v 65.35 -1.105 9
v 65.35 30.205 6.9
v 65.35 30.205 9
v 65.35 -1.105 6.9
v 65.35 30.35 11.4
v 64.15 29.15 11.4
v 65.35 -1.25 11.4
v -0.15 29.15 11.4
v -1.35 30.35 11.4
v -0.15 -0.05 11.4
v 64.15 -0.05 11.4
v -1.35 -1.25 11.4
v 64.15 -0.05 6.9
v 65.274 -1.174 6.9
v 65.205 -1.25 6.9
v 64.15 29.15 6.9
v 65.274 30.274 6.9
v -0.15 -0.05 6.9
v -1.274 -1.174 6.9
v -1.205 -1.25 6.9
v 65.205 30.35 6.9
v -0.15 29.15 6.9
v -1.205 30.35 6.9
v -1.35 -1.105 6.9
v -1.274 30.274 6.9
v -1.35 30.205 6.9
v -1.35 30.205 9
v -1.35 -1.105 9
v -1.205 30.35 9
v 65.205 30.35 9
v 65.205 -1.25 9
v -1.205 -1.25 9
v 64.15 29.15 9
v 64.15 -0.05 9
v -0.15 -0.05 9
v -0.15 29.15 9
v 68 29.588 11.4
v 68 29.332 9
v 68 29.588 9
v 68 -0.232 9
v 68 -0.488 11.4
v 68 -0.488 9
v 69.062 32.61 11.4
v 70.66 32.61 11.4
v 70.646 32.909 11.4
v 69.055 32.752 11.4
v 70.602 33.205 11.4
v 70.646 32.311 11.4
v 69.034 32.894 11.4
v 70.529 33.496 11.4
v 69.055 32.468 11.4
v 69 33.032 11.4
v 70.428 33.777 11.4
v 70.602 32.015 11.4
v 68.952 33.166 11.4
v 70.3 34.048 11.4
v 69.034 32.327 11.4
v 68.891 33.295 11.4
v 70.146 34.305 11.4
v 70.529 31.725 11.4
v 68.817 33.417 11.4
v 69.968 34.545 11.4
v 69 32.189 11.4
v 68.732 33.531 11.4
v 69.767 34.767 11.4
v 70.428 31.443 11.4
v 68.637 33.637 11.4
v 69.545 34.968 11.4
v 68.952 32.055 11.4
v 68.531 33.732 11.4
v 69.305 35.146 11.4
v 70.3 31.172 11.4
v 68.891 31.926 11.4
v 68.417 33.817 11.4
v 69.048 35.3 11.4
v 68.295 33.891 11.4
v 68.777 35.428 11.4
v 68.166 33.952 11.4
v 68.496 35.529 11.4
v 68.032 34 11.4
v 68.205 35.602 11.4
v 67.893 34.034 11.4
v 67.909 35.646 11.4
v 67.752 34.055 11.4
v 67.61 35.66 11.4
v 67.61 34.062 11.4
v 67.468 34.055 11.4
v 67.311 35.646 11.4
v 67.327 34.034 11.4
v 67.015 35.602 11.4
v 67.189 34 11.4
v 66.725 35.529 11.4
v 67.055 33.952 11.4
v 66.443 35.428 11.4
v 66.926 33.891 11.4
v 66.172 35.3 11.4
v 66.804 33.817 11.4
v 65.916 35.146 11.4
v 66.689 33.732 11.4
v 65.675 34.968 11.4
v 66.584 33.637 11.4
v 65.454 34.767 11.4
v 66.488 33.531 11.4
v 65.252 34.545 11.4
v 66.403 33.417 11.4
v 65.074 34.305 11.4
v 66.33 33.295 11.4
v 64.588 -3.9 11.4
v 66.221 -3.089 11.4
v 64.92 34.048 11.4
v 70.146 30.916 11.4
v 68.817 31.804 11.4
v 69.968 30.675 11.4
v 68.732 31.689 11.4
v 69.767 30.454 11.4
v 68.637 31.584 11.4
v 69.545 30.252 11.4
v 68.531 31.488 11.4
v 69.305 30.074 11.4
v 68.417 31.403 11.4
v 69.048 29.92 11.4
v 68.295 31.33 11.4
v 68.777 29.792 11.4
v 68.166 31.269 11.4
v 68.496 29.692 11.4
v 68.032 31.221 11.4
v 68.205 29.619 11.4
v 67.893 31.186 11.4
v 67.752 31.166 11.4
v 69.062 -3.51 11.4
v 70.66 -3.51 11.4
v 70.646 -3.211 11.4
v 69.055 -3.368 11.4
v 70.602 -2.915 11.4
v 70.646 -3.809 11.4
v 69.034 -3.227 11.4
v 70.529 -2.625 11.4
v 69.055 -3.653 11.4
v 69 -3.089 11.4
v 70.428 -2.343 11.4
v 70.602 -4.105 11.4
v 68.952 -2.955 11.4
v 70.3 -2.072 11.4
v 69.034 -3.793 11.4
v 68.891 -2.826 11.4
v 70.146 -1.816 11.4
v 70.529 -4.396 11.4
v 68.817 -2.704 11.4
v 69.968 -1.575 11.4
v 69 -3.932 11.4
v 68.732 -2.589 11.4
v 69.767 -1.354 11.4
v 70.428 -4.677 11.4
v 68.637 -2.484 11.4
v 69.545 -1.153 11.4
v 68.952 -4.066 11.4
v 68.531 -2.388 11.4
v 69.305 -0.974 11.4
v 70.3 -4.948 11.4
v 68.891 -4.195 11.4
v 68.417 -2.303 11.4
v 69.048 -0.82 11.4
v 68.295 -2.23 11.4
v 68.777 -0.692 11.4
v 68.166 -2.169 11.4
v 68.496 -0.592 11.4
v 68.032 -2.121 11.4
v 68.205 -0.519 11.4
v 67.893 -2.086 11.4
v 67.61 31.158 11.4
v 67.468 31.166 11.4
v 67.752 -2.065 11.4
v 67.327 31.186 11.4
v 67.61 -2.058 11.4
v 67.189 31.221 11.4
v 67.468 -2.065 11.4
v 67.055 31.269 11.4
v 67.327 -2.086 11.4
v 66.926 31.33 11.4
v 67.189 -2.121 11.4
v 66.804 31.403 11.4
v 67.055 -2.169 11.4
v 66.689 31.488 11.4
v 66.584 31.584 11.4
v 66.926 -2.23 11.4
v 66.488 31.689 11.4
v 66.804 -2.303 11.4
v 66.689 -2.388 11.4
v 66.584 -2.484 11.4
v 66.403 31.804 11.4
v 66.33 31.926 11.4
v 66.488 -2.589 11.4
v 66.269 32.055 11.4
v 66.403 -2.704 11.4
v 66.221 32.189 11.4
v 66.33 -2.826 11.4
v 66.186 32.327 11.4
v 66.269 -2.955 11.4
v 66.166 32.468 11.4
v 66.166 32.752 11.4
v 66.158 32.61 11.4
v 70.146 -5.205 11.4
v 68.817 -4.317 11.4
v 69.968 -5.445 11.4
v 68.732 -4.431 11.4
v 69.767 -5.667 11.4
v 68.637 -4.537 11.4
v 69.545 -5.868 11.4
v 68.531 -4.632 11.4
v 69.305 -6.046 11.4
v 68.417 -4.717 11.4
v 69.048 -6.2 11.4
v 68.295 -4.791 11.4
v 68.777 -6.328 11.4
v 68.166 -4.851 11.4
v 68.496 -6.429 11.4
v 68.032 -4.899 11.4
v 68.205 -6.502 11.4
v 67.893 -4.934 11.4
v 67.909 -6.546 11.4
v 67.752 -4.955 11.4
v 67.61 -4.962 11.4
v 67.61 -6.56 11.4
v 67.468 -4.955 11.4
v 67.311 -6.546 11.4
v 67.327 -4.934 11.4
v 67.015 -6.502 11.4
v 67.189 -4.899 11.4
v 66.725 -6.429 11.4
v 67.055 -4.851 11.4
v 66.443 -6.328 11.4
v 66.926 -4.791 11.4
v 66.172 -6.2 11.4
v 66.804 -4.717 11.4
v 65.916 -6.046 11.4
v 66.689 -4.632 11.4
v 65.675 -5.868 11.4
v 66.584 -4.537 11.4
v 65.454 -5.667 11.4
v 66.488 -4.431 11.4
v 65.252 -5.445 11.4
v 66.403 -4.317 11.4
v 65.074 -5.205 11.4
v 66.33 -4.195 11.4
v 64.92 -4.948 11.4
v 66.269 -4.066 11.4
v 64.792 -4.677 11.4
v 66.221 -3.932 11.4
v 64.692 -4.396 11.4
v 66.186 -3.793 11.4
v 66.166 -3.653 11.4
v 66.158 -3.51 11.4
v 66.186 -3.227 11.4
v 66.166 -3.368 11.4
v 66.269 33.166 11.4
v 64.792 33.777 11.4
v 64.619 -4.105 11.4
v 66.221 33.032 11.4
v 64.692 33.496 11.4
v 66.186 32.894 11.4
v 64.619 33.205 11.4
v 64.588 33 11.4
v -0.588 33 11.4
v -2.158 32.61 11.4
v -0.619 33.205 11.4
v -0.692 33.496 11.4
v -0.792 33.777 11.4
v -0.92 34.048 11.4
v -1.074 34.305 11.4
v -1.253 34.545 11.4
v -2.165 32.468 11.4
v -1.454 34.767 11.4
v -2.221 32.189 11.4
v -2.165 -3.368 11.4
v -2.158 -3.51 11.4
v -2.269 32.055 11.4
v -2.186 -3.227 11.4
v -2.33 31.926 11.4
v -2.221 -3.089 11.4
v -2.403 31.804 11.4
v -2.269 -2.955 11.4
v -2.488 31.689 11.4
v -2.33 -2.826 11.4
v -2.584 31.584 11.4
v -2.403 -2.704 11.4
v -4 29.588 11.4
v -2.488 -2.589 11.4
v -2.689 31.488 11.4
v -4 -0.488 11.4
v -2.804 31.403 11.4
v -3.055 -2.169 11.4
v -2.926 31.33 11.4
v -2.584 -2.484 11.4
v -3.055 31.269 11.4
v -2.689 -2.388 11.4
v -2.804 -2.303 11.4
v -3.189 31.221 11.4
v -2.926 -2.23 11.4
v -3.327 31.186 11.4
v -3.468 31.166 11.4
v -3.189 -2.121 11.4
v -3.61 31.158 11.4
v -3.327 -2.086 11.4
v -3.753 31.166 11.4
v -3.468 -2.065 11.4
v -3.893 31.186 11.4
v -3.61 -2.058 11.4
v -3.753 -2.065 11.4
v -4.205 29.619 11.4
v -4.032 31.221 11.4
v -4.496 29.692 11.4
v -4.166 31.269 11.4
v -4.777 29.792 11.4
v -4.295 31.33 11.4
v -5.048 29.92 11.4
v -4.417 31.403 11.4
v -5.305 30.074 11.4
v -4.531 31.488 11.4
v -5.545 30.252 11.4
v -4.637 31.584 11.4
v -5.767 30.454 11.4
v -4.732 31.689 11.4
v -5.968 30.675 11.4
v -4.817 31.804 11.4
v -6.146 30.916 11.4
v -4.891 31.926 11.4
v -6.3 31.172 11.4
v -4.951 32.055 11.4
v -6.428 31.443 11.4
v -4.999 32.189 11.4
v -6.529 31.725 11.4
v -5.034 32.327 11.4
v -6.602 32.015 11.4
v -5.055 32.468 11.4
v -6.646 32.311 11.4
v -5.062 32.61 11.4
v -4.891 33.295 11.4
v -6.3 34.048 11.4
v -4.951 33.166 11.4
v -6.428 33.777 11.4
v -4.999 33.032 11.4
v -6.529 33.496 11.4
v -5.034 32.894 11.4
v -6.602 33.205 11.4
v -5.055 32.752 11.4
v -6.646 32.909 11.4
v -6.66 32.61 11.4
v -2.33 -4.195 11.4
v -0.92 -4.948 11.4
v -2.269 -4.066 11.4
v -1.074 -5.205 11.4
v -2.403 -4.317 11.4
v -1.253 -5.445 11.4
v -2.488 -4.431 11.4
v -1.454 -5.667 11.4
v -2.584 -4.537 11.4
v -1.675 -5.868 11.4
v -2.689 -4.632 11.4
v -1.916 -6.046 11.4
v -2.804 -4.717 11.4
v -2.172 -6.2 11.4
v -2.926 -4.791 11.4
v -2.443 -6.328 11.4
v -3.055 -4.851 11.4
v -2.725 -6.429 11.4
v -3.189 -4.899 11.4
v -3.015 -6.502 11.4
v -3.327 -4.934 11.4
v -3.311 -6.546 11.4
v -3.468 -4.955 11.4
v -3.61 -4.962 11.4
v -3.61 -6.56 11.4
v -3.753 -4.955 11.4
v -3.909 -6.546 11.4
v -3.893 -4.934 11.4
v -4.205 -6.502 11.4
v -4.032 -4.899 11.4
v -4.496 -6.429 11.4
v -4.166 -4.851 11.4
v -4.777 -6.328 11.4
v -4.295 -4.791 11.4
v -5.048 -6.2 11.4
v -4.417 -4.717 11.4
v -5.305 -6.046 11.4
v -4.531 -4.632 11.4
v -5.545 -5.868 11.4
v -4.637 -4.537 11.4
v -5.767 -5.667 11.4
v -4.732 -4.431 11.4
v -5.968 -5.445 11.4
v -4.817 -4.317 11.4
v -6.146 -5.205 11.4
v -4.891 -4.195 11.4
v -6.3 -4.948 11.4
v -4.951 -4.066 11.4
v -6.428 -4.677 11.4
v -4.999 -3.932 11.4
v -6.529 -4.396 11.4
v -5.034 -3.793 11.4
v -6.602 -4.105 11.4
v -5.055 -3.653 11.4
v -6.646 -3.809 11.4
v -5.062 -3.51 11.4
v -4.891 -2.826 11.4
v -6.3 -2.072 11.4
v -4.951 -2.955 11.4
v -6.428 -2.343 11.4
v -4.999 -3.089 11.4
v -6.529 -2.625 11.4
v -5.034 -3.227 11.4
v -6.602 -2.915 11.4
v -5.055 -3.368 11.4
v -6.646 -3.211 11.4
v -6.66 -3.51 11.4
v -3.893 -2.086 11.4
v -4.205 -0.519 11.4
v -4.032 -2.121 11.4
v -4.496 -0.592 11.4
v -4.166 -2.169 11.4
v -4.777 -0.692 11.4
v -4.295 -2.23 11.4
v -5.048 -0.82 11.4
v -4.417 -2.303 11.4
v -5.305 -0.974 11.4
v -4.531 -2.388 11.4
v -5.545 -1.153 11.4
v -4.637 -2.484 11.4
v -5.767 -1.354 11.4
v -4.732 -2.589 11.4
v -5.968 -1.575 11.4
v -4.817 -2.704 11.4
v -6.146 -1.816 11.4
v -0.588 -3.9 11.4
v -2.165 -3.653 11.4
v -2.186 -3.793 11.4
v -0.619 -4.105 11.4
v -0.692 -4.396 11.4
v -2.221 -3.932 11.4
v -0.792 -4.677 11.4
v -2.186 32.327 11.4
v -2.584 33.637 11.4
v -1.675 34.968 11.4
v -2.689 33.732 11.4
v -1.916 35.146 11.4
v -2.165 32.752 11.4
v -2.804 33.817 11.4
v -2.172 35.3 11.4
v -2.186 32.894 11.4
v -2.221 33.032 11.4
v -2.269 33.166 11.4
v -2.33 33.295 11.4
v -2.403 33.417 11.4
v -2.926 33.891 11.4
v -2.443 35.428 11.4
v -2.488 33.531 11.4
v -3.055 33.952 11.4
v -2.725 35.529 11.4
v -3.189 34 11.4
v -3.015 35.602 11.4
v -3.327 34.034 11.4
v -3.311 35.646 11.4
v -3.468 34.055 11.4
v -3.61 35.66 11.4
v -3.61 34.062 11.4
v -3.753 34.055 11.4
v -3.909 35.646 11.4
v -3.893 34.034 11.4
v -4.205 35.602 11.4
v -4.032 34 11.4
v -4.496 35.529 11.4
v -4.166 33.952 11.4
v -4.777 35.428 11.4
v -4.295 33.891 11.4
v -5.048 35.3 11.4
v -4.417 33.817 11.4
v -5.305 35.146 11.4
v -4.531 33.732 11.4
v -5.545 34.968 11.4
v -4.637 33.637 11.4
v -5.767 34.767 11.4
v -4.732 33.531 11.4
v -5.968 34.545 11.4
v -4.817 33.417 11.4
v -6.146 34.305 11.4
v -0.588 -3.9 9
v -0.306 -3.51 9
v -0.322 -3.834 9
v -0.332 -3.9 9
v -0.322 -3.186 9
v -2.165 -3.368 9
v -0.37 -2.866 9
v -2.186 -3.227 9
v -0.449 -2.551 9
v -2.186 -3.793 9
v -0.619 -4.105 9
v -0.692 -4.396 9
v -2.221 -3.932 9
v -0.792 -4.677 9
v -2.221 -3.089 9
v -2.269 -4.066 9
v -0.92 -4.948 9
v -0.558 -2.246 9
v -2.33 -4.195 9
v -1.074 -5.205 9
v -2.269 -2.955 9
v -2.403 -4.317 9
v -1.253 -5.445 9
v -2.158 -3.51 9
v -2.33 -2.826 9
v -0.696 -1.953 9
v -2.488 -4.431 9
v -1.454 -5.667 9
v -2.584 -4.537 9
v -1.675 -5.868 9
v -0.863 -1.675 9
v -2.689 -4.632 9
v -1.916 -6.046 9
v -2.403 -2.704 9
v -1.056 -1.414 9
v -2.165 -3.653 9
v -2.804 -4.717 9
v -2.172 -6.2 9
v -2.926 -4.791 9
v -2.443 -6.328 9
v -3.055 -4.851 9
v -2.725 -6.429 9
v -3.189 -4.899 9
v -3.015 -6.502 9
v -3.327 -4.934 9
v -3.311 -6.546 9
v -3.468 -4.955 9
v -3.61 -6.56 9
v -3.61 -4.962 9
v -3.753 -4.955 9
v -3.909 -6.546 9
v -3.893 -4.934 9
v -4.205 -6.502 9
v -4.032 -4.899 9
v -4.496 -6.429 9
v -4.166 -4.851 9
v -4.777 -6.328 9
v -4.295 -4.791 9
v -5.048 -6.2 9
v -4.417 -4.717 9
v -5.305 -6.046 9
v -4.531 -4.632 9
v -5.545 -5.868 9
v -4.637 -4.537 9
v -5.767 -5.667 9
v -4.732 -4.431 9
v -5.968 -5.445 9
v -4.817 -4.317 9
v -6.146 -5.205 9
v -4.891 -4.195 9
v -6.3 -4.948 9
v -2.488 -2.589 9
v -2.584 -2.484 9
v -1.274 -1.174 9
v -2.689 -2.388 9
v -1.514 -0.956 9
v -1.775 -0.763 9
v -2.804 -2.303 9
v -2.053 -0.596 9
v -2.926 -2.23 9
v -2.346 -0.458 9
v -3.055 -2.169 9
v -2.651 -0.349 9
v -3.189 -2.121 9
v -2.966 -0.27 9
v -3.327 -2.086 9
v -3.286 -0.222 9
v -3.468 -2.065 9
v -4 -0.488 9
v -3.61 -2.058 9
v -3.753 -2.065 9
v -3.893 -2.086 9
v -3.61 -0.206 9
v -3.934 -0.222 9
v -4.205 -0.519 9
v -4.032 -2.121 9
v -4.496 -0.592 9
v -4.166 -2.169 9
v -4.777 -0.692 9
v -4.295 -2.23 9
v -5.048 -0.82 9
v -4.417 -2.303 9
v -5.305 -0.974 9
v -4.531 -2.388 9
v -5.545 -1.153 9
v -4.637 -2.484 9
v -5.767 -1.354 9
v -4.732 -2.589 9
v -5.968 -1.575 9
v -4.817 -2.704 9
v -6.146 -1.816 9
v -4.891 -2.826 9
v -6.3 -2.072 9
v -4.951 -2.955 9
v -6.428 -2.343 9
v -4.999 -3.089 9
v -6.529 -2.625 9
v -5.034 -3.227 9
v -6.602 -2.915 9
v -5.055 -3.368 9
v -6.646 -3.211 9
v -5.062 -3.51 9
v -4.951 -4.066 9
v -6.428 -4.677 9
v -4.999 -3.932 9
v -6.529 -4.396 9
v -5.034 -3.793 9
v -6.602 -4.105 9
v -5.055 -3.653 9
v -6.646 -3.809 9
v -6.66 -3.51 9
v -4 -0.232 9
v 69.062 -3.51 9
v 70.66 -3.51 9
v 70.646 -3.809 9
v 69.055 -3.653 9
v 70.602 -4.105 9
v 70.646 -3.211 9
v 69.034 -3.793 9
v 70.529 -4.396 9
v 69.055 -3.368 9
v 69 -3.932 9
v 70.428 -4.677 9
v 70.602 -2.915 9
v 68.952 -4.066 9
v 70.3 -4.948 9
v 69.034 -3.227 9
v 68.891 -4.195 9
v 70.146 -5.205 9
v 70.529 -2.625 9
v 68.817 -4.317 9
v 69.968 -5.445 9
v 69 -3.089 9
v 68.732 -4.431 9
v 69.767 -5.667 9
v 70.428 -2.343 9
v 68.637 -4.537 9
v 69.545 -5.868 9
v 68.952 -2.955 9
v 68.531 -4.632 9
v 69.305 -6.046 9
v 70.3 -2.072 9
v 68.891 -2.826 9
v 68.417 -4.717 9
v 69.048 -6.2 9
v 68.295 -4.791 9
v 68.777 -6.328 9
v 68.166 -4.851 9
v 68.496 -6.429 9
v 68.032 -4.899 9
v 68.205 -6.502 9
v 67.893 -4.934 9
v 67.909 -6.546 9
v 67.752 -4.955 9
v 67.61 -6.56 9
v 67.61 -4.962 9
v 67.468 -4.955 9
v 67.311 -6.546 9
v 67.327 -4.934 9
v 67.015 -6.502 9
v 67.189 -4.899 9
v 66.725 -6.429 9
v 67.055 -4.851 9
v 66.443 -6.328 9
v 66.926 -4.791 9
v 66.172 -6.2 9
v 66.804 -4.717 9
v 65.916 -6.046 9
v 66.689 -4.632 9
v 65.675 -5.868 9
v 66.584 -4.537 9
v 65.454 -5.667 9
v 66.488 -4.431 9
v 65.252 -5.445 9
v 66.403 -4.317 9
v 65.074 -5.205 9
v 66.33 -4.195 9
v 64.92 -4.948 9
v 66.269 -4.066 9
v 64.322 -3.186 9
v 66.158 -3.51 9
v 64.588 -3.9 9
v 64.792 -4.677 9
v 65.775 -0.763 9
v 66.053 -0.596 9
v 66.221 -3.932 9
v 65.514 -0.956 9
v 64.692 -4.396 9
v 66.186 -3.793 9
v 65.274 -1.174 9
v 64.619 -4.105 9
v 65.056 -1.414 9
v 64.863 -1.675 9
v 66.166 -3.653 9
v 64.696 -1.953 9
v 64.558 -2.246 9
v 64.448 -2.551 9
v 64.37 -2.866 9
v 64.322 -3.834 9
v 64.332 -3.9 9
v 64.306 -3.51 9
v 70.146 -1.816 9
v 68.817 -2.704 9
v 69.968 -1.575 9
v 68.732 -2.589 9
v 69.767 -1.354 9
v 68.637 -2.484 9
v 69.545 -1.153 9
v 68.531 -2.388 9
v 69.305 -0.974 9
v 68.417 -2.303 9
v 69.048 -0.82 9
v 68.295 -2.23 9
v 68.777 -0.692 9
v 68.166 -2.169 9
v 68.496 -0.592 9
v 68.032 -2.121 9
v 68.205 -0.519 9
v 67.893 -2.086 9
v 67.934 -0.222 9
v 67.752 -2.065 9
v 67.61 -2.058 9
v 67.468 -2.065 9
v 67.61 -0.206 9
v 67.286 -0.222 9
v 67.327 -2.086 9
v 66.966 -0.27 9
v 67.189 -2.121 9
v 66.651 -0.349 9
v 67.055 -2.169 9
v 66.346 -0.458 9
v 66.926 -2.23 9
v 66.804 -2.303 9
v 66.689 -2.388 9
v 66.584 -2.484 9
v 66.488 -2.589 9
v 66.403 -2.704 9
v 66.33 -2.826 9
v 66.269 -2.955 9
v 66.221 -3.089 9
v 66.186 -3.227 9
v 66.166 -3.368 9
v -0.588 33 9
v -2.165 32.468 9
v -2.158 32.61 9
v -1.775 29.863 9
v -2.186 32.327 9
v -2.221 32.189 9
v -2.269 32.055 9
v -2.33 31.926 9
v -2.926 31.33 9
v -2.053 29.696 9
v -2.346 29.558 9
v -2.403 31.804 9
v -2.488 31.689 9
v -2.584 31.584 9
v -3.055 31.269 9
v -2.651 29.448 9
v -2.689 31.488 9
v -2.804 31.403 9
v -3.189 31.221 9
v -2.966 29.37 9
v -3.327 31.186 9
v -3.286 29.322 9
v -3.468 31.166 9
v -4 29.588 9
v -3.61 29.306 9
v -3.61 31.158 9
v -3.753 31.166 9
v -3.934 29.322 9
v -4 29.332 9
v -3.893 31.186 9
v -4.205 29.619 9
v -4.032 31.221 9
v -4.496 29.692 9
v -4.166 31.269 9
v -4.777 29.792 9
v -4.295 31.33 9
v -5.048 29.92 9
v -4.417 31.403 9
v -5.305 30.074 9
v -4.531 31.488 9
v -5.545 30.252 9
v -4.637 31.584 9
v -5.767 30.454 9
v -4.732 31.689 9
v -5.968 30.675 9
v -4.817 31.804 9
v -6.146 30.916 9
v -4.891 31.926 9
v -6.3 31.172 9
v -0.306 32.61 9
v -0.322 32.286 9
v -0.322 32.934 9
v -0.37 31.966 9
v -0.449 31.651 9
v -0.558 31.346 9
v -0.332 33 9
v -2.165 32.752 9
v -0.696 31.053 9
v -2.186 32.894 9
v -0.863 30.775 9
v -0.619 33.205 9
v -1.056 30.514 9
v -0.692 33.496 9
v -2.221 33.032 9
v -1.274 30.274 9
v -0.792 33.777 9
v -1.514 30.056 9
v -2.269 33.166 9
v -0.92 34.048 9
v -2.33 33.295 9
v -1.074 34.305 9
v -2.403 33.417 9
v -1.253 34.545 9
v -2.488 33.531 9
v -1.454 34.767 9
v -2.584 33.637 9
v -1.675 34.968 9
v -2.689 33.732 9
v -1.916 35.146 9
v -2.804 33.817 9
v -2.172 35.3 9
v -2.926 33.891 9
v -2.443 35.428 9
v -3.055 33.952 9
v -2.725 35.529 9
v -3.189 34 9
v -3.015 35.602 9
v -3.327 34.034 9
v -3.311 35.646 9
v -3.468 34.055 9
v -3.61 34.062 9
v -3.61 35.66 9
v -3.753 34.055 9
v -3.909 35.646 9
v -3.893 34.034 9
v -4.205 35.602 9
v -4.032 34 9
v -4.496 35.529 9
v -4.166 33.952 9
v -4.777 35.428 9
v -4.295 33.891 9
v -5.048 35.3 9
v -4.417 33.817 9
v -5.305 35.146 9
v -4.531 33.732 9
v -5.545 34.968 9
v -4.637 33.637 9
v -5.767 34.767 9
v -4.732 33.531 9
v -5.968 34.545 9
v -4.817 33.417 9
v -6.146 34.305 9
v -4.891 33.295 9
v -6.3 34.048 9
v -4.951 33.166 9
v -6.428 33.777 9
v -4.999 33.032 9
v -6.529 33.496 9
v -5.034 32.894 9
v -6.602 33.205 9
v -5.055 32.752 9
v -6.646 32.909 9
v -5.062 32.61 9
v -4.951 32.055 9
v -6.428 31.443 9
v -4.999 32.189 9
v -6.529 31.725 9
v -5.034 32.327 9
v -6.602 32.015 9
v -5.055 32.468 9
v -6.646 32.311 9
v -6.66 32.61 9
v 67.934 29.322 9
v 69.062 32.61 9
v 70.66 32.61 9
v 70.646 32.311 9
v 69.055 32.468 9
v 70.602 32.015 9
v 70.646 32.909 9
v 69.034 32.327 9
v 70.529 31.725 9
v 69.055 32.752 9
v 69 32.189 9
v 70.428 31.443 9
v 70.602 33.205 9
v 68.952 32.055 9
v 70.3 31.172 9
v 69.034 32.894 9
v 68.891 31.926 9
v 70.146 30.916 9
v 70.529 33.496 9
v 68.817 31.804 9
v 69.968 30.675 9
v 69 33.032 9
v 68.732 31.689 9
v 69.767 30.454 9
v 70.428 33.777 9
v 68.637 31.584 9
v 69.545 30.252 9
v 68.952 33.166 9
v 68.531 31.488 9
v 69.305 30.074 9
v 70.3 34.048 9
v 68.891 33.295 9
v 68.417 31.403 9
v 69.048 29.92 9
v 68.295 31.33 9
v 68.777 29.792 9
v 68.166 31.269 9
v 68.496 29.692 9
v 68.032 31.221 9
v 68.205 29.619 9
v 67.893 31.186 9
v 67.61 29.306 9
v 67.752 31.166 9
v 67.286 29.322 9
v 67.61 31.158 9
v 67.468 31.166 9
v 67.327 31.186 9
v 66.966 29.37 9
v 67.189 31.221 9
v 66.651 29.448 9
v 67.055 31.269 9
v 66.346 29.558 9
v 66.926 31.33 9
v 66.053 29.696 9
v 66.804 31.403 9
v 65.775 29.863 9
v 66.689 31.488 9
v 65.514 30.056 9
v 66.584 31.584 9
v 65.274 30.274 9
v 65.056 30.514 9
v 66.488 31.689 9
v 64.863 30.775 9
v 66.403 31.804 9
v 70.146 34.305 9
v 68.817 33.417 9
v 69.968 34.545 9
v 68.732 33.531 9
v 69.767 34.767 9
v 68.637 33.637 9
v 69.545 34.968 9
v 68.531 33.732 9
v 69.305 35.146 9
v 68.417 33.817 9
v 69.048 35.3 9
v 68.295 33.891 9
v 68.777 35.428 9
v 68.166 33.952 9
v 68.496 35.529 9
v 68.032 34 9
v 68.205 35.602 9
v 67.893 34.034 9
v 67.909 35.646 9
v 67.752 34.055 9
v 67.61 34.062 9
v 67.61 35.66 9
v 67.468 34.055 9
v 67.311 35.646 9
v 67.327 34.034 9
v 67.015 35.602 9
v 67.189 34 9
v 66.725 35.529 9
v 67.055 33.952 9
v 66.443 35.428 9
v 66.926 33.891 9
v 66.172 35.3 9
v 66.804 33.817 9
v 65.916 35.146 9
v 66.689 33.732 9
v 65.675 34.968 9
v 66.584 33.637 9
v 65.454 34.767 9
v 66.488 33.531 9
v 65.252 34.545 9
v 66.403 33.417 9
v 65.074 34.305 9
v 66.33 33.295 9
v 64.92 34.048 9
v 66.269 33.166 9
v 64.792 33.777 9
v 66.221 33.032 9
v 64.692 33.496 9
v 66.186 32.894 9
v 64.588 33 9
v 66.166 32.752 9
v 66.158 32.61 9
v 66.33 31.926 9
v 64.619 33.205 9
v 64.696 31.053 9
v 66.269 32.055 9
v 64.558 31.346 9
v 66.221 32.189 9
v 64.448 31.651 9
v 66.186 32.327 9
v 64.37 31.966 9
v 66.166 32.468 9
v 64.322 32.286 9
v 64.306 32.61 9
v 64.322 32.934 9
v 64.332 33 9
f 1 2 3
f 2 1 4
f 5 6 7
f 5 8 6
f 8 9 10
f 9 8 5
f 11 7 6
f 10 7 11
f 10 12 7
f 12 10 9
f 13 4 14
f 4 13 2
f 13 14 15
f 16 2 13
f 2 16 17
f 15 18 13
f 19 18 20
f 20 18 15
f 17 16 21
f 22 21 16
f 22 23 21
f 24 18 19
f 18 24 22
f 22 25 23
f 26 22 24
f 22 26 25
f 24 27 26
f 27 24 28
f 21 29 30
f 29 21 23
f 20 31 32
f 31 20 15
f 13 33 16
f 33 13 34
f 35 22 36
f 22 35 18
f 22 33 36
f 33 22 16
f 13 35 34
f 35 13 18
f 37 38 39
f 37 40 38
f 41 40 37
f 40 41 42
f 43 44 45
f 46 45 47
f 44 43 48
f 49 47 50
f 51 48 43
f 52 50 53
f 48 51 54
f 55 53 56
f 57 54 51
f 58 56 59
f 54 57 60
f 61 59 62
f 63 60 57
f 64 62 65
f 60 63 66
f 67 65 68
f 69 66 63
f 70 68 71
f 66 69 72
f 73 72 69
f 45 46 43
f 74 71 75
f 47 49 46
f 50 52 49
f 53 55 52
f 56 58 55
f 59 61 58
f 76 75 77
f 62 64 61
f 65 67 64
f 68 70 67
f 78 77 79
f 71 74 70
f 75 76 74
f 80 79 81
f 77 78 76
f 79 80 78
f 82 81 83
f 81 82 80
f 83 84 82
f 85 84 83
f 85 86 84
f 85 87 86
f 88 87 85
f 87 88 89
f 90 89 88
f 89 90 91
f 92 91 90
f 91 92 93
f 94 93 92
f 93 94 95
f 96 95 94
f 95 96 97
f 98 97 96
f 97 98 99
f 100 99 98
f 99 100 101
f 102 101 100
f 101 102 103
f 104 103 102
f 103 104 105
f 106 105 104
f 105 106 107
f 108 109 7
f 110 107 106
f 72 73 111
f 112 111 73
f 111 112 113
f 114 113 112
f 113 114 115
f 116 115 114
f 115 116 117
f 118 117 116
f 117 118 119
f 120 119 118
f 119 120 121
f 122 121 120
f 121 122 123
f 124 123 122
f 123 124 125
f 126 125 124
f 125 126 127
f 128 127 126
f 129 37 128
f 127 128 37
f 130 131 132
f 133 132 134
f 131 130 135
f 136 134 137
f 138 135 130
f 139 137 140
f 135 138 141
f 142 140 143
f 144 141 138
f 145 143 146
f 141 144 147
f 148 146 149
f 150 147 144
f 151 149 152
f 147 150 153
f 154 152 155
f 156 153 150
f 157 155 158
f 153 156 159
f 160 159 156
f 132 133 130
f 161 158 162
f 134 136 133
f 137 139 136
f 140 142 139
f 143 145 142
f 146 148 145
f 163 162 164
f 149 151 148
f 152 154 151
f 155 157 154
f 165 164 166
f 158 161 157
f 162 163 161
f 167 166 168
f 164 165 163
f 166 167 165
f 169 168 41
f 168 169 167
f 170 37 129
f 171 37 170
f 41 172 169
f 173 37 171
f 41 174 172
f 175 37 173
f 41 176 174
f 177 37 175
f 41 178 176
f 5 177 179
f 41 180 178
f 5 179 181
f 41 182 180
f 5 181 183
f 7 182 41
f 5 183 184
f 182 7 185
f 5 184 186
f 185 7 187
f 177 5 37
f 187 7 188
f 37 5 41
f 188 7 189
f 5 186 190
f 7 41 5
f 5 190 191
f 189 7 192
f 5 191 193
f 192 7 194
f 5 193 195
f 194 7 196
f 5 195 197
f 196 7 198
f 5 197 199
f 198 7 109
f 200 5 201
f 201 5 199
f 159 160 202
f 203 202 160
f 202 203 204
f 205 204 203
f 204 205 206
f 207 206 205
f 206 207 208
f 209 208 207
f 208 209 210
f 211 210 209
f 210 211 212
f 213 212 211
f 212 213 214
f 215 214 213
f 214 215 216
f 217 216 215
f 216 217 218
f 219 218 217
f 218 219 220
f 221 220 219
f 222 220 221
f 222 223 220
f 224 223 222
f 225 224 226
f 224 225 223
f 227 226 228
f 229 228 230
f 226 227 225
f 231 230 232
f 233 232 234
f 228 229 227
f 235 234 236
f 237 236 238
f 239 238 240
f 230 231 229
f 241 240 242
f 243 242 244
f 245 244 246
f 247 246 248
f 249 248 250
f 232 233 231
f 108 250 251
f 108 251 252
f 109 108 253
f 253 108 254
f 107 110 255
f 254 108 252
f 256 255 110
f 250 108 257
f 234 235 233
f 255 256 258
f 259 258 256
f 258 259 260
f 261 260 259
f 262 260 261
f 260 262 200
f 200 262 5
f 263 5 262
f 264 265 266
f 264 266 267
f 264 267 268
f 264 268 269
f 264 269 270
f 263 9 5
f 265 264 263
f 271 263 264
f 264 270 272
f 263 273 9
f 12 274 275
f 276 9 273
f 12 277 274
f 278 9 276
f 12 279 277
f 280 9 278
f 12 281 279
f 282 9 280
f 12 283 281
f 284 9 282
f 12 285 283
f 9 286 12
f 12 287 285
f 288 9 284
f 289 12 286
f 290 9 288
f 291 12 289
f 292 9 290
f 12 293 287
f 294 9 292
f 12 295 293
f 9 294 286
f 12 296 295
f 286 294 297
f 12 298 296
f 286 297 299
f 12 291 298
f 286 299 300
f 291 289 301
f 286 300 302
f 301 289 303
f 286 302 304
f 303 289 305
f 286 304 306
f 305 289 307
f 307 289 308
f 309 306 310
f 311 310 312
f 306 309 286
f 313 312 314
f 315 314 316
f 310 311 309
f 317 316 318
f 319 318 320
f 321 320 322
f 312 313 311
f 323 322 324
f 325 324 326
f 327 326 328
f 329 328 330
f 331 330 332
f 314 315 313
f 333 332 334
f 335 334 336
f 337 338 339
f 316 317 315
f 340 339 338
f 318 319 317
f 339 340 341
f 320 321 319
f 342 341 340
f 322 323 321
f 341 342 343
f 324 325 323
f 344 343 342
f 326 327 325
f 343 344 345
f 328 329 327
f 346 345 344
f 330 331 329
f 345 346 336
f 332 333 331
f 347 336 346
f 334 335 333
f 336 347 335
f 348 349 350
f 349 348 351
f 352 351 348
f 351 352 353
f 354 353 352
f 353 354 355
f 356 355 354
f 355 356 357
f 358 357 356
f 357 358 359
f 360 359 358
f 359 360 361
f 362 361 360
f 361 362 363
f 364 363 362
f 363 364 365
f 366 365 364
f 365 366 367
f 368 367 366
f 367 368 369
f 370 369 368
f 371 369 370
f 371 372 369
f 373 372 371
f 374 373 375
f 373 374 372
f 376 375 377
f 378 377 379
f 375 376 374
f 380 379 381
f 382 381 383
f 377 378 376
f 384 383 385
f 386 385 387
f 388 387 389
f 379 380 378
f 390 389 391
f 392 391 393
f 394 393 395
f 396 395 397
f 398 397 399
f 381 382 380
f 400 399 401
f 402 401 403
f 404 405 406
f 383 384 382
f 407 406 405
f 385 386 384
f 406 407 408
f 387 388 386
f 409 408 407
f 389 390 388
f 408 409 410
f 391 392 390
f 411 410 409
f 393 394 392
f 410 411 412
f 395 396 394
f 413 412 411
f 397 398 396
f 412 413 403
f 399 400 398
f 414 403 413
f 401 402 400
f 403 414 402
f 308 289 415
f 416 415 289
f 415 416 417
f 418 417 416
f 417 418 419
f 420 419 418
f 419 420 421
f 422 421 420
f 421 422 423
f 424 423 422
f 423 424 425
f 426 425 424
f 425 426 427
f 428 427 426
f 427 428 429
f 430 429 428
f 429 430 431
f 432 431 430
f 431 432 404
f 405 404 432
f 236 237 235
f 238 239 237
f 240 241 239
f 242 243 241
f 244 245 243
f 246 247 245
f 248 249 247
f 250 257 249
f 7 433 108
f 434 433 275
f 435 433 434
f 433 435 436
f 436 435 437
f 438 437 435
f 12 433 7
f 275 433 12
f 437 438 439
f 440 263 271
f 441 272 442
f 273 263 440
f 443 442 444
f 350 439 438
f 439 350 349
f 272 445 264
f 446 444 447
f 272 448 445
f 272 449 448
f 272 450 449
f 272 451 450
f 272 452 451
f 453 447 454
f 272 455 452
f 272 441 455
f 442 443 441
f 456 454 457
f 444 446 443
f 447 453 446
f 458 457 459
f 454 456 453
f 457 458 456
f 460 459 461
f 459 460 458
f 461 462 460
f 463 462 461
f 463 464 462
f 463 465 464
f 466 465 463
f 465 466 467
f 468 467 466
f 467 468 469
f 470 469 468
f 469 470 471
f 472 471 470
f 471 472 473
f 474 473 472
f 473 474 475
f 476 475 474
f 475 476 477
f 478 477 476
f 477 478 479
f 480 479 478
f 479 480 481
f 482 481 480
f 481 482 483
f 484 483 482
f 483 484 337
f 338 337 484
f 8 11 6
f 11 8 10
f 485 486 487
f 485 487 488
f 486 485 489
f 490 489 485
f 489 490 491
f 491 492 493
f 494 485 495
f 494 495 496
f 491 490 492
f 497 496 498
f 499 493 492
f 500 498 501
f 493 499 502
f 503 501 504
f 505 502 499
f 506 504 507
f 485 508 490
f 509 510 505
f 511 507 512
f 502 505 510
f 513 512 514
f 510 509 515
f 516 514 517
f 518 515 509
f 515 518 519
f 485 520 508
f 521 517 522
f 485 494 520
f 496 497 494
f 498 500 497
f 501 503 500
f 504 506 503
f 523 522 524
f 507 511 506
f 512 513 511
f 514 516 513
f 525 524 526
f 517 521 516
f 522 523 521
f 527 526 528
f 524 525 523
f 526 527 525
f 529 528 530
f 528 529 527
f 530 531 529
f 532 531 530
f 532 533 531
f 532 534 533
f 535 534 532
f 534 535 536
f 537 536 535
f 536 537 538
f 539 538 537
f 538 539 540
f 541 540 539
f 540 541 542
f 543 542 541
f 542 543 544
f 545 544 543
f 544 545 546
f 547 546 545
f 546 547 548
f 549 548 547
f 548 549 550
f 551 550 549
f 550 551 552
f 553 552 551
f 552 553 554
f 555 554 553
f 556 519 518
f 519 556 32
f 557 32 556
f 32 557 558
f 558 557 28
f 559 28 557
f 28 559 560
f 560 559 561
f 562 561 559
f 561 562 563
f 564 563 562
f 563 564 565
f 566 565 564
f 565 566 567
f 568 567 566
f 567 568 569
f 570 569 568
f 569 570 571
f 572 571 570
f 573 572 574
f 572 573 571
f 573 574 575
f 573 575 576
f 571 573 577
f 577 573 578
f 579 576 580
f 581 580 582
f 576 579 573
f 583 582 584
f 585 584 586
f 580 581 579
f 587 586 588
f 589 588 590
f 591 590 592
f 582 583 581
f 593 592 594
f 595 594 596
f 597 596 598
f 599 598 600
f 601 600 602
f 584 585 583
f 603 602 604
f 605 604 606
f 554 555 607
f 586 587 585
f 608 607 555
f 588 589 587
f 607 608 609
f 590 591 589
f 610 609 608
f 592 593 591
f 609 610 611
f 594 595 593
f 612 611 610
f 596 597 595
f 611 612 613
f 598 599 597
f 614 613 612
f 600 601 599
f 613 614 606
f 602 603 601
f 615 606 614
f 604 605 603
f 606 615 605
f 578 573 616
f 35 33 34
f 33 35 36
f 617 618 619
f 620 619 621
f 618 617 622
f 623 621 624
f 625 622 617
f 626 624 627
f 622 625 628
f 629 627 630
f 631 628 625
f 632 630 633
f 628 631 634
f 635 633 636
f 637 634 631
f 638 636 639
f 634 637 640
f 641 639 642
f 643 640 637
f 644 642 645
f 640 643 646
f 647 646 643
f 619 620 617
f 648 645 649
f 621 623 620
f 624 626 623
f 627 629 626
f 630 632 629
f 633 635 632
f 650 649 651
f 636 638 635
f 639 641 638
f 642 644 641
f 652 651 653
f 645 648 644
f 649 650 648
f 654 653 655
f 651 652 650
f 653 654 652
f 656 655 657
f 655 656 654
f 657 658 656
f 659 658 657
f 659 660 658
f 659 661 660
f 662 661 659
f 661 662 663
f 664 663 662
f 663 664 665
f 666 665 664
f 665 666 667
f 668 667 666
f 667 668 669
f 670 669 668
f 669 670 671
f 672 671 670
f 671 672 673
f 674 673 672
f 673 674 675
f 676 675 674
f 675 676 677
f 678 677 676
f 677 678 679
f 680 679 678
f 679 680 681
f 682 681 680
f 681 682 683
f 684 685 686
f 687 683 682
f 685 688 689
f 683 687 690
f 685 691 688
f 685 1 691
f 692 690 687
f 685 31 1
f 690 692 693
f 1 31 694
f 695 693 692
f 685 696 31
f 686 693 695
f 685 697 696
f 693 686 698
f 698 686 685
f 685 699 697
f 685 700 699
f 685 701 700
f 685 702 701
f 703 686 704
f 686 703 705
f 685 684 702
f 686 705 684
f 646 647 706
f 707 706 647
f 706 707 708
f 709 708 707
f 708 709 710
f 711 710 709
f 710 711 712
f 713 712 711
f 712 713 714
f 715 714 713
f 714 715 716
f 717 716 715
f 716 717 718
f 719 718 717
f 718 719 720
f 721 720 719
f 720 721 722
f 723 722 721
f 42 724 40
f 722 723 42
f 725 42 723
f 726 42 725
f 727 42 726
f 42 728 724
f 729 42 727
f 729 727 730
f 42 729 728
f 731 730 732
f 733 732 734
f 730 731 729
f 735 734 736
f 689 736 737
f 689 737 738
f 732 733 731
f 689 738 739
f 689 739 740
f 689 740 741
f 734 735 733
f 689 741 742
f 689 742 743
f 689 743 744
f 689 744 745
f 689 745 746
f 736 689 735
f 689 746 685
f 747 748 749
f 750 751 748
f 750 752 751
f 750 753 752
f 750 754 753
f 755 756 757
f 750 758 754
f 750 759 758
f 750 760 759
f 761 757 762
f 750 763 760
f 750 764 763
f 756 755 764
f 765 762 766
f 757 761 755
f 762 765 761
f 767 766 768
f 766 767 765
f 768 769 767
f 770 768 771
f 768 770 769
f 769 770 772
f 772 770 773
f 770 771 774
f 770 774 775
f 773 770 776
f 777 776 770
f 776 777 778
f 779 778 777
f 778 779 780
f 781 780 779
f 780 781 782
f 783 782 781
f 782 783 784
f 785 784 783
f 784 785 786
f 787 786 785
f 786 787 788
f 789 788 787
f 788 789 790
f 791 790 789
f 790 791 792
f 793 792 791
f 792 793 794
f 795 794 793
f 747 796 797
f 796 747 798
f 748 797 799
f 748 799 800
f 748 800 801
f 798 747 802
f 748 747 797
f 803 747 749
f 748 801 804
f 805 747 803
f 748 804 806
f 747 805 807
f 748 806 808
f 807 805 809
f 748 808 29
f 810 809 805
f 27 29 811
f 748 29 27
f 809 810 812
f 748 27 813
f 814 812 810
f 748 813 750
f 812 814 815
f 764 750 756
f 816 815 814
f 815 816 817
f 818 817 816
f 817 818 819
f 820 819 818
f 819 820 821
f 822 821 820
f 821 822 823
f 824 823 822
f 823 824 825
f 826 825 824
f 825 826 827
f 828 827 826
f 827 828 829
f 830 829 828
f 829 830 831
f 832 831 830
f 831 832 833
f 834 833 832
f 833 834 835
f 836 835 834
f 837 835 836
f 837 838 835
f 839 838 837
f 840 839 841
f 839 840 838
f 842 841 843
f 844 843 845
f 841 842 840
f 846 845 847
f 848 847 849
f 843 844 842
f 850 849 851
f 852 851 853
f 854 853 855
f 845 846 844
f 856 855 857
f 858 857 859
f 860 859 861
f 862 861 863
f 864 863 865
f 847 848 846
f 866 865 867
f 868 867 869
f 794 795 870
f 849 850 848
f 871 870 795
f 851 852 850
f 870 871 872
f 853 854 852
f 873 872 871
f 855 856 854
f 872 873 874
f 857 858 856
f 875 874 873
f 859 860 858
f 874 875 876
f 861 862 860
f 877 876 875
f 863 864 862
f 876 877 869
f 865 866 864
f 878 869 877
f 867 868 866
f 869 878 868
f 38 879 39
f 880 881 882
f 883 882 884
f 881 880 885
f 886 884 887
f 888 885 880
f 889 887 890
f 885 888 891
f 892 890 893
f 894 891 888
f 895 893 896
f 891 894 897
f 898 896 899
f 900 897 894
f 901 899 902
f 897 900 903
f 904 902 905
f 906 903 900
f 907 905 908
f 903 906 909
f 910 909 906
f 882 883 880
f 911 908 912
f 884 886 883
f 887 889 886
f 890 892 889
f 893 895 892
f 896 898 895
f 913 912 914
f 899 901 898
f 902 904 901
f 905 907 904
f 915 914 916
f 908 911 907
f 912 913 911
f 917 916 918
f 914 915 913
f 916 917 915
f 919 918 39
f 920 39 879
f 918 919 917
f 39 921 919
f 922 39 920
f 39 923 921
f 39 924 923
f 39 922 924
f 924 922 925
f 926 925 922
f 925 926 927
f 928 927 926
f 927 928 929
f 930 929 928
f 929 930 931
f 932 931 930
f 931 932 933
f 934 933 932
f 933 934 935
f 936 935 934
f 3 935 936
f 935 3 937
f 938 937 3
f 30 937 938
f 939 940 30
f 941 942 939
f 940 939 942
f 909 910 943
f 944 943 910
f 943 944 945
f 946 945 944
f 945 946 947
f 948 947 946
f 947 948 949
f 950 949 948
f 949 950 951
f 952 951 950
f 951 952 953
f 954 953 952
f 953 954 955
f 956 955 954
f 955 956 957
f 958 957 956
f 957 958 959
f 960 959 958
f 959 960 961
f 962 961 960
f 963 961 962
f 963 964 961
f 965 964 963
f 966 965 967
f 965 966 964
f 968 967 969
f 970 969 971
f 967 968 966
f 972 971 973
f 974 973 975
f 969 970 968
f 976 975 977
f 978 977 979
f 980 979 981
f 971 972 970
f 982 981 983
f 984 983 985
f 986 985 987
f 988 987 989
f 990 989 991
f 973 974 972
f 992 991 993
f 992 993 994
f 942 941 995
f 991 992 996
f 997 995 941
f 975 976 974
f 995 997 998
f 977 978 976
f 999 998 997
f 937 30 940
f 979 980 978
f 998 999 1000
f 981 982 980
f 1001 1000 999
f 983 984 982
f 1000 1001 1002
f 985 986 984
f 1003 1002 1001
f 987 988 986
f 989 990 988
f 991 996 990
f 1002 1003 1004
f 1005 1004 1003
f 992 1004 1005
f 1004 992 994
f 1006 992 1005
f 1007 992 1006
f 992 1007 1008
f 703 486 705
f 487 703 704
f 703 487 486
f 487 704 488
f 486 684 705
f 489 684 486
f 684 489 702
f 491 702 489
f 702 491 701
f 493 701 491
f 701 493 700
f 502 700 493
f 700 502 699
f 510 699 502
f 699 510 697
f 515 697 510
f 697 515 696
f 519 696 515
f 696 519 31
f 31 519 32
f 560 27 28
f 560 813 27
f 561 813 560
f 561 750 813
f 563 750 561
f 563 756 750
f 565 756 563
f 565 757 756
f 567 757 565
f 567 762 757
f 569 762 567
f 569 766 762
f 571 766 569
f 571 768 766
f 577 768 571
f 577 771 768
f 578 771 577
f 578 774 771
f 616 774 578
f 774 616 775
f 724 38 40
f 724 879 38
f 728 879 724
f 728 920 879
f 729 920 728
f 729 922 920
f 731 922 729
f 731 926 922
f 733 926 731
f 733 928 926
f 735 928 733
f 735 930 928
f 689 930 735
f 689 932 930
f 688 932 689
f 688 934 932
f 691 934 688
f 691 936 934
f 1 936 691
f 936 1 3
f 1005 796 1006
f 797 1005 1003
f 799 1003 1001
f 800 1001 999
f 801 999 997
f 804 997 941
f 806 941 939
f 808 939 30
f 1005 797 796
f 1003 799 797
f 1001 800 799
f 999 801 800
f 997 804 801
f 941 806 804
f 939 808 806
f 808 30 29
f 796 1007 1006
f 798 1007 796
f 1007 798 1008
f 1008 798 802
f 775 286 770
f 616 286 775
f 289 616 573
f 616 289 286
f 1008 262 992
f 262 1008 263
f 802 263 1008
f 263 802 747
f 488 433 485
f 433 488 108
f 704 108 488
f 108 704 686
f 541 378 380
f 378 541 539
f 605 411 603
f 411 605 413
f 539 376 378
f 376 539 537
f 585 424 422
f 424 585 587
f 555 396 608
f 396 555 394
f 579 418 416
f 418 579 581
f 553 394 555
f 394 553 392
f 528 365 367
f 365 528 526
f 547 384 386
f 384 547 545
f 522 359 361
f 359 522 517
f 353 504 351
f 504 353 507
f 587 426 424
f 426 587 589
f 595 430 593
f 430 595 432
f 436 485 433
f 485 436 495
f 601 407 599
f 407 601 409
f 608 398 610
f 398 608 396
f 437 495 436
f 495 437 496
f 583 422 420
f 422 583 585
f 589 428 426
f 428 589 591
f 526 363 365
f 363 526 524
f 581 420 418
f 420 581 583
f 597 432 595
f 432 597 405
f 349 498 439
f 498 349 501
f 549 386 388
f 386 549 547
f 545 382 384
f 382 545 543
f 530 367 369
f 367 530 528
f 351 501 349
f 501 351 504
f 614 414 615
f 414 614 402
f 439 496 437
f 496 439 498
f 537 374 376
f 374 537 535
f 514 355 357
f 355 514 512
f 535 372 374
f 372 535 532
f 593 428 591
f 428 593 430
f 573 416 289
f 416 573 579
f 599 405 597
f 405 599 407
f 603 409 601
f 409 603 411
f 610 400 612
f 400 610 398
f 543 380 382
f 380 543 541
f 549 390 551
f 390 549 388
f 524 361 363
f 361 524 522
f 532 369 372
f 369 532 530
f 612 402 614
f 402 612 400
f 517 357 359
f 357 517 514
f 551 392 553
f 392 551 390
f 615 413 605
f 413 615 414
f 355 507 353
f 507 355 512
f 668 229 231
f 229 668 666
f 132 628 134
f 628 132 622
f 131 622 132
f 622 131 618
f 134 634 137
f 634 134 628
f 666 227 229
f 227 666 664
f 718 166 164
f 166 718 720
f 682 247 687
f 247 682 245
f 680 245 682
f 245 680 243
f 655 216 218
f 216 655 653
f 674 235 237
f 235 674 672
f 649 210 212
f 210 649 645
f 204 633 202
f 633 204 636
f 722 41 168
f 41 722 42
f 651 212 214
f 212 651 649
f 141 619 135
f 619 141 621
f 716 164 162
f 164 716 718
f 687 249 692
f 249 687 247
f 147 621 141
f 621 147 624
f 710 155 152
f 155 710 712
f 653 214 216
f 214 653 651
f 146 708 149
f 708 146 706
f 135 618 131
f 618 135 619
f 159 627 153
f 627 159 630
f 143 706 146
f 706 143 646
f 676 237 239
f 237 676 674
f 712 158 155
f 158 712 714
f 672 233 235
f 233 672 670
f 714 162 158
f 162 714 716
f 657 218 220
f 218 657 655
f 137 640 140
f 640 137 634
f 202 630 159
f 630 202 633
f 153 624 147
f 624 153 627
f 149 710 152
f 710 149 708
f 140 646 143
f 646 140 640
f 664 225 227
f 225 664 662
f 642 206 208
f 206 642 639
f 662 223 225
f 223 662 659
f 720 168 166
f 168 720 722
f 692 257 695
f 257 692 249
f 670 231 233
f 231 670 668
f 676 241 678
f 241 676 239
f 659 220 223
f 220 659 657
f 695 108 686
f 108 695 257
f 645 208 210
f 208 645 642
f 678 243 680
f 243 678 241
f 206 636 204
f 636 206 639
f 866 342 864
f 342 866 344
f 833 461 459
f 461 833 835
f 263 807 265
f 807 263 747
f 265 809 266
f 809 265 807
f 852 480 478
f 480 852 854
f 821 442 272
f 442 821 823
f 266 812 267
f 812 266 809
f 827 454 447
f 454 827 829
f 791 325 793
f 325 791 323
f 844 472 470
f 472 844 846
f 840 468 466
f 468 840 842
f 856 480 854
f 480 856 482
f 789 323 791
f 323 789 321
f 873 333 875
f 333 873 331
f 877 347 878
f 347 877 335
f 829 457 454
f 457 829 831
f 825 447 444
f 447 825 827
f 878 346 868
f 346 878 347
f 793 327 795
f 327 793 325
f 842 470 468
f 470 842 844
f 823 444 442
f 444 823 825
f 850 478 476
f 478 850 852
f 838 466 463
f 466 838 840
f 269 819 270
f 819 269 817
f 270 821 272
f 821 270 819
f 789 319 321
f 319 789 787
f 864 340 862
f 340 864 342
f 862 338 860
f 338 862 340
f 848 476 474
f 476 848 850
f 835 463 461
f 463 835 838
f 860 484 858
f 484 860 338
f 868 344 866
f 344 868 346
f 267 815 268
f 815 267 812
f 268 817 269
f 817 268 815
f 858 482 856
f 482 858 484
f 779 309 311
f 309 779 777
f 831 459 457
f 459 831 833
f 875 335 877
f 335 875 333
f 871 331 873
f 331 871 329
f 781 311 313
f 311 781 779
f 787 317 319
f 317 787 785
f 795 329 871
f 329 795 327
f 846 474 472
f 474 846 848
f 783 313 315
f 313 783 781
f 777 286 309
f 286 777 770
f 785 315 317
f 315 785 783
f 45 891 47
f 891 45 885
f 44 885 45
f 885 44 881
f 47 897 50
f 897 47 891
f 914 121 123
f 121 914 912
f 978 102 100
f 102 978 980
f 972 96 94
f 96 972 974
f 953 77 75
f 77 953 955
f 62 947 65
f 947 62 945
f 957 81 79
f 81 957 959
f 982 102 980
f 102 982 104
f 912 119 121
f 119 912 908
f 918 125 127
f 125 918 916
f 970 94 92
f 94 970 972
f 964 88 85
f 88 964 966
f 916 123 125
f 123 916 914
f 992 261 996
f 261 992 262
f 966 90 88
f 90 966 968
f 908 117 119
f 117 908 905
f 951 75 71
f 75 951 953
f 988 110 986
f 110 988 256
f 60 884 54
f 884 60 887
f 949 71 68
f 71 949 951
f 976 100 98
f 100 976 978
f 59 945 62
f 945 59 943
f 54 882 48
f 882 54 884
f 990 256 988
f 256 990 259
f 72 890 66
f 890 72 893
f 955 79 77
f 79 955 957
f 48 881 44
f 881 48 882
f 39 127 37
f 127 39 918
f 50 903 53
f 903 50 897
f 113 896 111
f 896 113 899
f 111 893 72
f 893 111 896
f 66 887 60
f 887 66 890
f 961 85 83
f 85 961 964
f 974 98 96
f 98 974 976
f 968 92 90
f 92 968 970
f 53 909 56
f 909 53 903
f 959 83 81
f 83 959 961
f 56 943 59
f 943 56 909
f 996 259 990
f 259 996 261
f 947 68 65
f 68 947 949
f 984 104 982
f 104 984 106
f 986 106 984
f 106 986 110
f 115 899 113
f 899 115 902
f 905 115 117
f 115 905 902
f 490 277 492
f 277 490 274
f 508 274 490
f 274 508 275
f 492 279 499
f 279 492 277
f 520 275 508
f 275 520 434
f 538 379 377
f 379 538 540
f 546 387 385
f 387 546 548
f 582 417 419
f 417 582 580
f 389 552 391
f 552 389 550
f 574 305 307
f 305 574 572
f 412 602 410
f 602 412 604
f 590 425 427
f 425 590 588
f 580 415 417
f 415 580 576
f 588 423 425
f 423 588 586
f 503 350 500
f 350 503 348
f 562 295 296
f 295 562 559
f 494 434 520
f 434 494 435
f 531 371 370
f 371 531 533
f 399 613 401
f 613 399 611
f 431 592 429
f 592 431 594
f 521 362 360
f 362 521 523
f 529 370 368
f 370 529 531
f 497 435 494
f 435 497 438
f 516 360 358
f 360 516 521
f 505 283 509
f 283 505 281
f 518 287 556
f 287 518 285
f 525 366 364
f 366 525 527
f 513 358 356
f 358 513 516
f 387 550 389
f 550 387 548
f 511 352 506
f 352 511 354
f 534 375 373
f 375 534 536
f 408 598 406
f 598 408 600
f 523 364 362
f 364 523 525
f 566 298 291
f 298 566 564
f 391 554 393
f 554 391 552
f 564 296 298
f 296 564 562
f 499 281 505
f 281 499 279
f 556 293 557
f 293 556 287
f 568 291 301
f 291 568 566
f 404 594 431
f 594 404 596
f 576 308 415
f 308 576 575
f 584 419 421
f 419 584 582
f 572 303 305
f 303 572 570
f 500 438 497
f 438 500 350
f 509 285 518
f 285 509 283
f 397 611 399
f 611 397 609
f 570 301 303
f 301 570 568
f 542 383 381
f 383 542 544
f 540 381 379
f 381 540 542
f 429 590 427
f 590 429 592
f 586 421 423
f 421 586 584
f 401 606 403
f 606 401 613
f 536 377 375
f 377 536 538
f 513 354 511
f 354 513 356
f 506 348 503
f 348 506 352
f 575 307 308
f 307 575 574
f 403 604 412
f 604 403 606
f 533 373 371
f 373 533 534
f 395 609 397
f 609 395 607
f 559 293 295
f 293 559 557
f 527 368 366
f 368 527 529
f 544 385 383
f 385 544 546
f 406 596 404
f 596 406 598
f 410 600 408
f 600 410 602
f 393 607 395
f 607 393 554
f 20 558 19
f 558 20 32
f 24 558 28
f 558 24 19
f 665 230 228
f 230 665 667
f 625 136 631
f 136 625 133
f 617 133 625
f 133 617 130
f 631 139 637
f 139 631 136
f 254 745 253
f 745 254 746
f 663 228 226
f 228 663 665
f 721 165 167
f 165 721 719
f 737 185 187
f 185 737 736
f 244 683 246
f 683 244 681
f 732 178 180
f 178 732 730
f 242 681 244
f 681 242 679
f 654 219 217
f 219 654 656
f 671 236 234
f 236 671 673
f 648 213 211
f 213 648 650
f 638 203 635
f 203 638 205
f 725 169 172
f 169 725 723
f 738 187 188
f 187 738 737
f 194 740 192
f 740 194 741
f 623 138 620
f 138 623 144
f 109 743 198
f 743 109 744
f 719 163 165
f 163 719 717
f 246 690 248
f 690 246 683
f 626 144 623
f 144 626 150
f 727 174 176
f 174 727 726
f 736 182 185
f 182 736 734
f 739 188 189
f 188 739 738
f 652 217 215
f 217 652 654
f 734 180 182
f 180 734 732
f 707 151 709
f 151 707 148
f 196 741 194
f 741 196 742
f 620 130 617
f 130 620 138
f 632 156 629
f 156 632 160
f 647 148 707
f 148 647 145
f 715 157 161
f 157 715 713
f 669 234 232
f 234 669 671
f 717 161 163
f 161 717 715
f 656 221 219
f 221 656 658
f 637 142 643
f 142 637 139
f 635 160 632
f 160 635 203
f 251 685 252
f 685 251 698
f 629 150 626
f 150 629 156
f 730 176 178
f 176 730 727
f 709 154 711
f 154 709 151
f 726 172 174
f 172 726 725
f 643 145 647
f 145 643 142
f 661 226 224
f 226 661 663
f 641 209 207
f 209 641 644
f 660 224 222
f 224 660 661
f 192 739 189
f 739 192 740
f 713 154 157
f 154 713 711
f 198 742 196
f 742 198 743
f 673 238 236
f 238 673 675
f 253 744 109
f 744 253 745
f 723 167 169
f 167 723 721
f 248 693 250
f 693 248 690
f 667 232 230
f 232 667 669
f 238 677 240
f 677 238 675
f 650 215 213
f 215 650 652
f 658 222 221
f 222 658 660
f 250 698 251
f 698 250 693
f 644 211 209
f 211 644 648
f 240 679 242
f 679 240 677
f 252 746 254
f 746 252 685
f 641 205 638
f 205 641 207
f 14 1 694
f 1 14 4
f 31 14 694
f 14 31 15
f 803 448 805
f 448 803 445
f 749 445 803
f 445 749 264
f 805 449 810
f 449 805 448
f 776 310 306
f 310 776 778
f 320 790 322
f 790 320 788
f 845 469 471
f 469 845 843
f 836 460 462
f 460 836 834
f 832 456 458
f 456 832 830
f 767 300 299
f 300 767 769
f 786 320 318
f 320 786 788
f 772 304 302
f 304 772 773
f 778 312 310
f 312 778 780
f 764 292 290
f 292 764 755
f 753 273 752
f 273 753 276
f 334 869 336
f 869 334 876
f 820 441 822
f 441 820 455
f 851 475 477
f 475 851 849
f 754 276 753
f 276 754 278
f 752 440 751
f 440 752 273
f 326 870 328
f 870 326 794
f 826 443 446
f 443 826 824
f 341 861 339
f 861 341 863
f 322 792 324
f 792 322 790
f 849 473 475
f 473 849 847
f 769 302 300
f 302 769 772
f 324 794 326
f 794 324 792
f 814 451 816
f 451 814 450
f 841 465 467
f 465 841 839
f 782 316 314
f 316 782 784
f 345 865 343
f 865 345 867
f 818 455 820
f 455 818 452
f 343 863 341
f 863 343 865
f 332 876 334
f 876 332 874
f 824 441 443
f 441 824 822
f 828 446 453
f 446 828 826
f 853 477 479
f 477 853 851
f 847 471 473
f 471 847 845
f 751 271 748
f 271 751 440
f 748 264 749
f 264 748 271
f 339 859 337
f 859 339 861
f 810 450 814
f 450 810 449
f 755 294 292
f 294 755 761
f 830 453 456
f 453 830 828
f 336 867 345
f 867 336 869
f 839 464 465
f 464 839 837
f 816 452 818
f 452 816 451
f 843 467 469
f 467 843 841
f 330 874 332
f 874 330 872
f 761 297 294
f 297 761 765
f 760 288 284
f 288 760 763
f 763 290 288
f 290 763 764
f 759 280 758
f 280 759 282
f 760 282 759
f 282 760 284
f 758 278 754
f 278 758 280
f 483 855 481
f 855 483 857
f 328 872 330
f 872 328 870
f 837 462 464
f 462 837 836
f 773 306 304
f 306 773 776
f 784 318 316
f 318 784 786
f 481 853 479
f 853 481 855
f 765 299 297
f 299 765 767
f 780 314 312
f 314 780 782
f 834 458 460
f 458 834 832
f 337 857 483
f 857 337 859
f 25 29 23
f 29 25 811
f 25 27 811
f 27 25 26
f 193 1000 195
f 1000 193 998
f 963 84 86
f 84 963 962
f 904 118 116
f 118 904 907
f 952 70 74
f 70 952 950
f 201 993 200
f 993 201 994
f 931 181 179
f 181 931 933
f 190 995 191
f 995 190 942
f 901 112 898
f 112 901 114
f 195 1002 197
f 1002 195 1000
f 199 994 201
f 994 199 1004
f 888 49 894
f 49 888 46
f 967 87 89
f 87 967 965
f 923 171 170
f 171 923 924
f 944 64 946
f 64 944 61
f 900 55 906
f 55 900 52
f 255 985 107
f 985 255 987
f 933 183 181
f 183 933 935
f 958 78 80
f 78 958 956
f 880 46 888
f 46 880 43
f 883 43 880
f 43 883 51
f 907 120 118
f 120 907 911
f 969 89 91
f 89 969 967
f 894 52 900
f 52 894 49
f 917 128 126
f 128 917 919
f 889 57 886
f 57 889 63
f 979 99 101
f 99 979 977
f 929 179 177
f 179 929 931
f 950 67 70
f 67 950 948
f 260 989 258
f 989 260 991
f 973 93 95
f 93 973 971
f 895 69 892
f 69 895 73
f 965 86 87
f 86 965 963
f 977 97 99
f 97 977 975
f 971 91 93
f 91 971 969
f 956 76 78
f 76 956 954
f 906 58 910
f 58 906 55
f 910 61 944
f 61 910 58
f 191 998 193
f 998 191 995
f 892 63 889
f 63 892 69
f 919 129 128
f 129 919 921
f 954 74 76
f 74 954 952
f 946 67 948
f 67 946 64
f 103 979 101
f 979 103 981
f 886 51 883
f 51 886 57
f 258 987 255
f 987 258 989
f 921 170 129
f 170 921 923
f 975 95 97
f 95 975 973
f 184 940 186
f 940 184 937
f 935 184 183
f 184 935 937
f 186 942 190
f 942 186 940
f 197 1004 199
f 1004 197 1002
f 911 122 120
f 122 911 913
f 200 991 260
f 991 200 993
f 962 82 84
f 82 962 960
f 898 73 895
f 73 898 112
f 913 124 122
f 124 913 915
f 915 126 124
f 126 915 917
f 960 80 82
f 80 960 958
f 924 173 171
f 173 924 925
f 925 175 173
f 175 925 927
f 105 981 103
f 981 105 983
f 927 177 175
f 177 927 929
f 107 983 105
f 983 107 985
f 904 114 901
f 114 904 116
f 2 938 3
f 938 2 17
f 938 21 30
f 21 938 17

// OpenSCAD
// body lid
difference() {
  union() {
    // body lid (lid_plate)
    multmatrix([[1, 0, 0, 32], [0, 1, 0, 14.55], [0, 0, 1, 9], [0, 0, 0, 1]]) translate([-36, -18.45, 0]) cube([72, 36.9, 2.4]);
    // add lid_lip (lip)
    multmatrix([[1, 0, 0, 32], [0, 1, 0, 14.55], [0, 0, 1, 6.9], [0, 0, 0, 1]]) difference() { translate([-33.35, -15.8, 0]) cube([66.7, 31.6, 4.5]); translate([0, 0, -1]) translate([-32.15, -14.6, 0]) cube([64.3, 29.2, 6.5]); }
    // add boss_1_pad (pad)
    multmatrix([[1, 0, 0, -3.610229], [0, 1, 0, -3.510229], [0, 0, 1, 9], [0, 0, 0, 1]]) cylinder(h=2.4, d=6.1, $fn=64);
    // add boss_2_pad (pad)
    multmatrix([[1, 0, 0, 67.610229], [0, 1, 0, -3.510229], [0, 0, 1, 9], [0, 0, 0, 1]]) cylinder(h=2.4, d=6.1, $fn=64);
    // add boss_3_pad (pad)
    multmatrix([[1, 0, 0, -3.610229], [0, 1, 0, 32.610229], [0, 0, 1, 9], [0, 0, 0, 1]]) cylinder(h=2.4, d=6.1, $fn=64);
    // add boss_4_pad (pad)
    multmatrix([[1, 0, 0, 67.610229], [0, 1, 0, 32.610229], [0, 0, 1, 9], [0, 0, 0, 1]]) cylinder(h=2.4, d=6.1, $fn=64);
  }
  // cut boss_1_lid_hole (screw_hole)
  multmatrix([[1, 0, 0, -3.610229], [0, 1, 0, -3.510229], [0, 0, 1, 8], [0, 0, 0, 1]]) cylinder(h=4.4, d=2.903497, $fn=64);
  // cut boss_1_lip_notch (lip_notch)
  multmatrix([[1, 0, 0, -3.610229], [0, 1, 0, -3.510229], [0, 0, 1, 5.9], [0, 0, 0, 1]]) cylinder(h=3.1, d=6.60796, $fn=64);
  // cut boss_2_lid_hole (screw_hole)
  multmatrix([[1, 0, 0, 67.610229], [0, 1, 0, -3.510229], [0, 0, 1, 8], [0, 0, 0, 1]]) cylinder(h=4.4, d=2.903497, $fn=64);
  // cut boss_2_lip_notch (lip_notch)
  multmatrix([[1, 0, 0, 67.610229], [0, 1, 0, -3.510229], [0, 0, 1, 5.9], [0, 0, 0, 1]]) cylinder(h=3.1, d=6.60796, $fn=64);
  // cut boss_3_lid_hole (screw_hole)
  multmatrix([[1, 0, 0, -3.610229], [0, 1, 0, 32.610229], [0, 0, 1, 8], [0, 0, 0, 1]]) cylinder(h=4.4, d=2.903497, $fn=64);
  // cut boss_3_lip_notch (lip_notch)
  multmatrix([[1, 0, 0, -3.610229], [0, 1, 0, 32.610229], [0, 0, 1, 5.9], [0, 0, 0, 1]]) cylinder(h=3.1, d=6.60796, $fn=64);
  // cut boss_4_lid_hole (screw_hole)
  multmatrix([[1, 0, 0, 67.610229], [0, 1, 0, 32.610229], [0, 0, 1, 8], [0, 0, 0, 1]]) cylinder(h=4.4, d=2.903497, $fn=64);
  // cut boss_4_lip_notch (lip_notch)
  multmatrix([[1, 0, 0, 67.610229], [0, 1, 0, 32.610229], [0, 0, 1, 5.9], [0, 0, 0, 1]]) cylinder(h=3.1, d=6.60796, $fn=64);
}
